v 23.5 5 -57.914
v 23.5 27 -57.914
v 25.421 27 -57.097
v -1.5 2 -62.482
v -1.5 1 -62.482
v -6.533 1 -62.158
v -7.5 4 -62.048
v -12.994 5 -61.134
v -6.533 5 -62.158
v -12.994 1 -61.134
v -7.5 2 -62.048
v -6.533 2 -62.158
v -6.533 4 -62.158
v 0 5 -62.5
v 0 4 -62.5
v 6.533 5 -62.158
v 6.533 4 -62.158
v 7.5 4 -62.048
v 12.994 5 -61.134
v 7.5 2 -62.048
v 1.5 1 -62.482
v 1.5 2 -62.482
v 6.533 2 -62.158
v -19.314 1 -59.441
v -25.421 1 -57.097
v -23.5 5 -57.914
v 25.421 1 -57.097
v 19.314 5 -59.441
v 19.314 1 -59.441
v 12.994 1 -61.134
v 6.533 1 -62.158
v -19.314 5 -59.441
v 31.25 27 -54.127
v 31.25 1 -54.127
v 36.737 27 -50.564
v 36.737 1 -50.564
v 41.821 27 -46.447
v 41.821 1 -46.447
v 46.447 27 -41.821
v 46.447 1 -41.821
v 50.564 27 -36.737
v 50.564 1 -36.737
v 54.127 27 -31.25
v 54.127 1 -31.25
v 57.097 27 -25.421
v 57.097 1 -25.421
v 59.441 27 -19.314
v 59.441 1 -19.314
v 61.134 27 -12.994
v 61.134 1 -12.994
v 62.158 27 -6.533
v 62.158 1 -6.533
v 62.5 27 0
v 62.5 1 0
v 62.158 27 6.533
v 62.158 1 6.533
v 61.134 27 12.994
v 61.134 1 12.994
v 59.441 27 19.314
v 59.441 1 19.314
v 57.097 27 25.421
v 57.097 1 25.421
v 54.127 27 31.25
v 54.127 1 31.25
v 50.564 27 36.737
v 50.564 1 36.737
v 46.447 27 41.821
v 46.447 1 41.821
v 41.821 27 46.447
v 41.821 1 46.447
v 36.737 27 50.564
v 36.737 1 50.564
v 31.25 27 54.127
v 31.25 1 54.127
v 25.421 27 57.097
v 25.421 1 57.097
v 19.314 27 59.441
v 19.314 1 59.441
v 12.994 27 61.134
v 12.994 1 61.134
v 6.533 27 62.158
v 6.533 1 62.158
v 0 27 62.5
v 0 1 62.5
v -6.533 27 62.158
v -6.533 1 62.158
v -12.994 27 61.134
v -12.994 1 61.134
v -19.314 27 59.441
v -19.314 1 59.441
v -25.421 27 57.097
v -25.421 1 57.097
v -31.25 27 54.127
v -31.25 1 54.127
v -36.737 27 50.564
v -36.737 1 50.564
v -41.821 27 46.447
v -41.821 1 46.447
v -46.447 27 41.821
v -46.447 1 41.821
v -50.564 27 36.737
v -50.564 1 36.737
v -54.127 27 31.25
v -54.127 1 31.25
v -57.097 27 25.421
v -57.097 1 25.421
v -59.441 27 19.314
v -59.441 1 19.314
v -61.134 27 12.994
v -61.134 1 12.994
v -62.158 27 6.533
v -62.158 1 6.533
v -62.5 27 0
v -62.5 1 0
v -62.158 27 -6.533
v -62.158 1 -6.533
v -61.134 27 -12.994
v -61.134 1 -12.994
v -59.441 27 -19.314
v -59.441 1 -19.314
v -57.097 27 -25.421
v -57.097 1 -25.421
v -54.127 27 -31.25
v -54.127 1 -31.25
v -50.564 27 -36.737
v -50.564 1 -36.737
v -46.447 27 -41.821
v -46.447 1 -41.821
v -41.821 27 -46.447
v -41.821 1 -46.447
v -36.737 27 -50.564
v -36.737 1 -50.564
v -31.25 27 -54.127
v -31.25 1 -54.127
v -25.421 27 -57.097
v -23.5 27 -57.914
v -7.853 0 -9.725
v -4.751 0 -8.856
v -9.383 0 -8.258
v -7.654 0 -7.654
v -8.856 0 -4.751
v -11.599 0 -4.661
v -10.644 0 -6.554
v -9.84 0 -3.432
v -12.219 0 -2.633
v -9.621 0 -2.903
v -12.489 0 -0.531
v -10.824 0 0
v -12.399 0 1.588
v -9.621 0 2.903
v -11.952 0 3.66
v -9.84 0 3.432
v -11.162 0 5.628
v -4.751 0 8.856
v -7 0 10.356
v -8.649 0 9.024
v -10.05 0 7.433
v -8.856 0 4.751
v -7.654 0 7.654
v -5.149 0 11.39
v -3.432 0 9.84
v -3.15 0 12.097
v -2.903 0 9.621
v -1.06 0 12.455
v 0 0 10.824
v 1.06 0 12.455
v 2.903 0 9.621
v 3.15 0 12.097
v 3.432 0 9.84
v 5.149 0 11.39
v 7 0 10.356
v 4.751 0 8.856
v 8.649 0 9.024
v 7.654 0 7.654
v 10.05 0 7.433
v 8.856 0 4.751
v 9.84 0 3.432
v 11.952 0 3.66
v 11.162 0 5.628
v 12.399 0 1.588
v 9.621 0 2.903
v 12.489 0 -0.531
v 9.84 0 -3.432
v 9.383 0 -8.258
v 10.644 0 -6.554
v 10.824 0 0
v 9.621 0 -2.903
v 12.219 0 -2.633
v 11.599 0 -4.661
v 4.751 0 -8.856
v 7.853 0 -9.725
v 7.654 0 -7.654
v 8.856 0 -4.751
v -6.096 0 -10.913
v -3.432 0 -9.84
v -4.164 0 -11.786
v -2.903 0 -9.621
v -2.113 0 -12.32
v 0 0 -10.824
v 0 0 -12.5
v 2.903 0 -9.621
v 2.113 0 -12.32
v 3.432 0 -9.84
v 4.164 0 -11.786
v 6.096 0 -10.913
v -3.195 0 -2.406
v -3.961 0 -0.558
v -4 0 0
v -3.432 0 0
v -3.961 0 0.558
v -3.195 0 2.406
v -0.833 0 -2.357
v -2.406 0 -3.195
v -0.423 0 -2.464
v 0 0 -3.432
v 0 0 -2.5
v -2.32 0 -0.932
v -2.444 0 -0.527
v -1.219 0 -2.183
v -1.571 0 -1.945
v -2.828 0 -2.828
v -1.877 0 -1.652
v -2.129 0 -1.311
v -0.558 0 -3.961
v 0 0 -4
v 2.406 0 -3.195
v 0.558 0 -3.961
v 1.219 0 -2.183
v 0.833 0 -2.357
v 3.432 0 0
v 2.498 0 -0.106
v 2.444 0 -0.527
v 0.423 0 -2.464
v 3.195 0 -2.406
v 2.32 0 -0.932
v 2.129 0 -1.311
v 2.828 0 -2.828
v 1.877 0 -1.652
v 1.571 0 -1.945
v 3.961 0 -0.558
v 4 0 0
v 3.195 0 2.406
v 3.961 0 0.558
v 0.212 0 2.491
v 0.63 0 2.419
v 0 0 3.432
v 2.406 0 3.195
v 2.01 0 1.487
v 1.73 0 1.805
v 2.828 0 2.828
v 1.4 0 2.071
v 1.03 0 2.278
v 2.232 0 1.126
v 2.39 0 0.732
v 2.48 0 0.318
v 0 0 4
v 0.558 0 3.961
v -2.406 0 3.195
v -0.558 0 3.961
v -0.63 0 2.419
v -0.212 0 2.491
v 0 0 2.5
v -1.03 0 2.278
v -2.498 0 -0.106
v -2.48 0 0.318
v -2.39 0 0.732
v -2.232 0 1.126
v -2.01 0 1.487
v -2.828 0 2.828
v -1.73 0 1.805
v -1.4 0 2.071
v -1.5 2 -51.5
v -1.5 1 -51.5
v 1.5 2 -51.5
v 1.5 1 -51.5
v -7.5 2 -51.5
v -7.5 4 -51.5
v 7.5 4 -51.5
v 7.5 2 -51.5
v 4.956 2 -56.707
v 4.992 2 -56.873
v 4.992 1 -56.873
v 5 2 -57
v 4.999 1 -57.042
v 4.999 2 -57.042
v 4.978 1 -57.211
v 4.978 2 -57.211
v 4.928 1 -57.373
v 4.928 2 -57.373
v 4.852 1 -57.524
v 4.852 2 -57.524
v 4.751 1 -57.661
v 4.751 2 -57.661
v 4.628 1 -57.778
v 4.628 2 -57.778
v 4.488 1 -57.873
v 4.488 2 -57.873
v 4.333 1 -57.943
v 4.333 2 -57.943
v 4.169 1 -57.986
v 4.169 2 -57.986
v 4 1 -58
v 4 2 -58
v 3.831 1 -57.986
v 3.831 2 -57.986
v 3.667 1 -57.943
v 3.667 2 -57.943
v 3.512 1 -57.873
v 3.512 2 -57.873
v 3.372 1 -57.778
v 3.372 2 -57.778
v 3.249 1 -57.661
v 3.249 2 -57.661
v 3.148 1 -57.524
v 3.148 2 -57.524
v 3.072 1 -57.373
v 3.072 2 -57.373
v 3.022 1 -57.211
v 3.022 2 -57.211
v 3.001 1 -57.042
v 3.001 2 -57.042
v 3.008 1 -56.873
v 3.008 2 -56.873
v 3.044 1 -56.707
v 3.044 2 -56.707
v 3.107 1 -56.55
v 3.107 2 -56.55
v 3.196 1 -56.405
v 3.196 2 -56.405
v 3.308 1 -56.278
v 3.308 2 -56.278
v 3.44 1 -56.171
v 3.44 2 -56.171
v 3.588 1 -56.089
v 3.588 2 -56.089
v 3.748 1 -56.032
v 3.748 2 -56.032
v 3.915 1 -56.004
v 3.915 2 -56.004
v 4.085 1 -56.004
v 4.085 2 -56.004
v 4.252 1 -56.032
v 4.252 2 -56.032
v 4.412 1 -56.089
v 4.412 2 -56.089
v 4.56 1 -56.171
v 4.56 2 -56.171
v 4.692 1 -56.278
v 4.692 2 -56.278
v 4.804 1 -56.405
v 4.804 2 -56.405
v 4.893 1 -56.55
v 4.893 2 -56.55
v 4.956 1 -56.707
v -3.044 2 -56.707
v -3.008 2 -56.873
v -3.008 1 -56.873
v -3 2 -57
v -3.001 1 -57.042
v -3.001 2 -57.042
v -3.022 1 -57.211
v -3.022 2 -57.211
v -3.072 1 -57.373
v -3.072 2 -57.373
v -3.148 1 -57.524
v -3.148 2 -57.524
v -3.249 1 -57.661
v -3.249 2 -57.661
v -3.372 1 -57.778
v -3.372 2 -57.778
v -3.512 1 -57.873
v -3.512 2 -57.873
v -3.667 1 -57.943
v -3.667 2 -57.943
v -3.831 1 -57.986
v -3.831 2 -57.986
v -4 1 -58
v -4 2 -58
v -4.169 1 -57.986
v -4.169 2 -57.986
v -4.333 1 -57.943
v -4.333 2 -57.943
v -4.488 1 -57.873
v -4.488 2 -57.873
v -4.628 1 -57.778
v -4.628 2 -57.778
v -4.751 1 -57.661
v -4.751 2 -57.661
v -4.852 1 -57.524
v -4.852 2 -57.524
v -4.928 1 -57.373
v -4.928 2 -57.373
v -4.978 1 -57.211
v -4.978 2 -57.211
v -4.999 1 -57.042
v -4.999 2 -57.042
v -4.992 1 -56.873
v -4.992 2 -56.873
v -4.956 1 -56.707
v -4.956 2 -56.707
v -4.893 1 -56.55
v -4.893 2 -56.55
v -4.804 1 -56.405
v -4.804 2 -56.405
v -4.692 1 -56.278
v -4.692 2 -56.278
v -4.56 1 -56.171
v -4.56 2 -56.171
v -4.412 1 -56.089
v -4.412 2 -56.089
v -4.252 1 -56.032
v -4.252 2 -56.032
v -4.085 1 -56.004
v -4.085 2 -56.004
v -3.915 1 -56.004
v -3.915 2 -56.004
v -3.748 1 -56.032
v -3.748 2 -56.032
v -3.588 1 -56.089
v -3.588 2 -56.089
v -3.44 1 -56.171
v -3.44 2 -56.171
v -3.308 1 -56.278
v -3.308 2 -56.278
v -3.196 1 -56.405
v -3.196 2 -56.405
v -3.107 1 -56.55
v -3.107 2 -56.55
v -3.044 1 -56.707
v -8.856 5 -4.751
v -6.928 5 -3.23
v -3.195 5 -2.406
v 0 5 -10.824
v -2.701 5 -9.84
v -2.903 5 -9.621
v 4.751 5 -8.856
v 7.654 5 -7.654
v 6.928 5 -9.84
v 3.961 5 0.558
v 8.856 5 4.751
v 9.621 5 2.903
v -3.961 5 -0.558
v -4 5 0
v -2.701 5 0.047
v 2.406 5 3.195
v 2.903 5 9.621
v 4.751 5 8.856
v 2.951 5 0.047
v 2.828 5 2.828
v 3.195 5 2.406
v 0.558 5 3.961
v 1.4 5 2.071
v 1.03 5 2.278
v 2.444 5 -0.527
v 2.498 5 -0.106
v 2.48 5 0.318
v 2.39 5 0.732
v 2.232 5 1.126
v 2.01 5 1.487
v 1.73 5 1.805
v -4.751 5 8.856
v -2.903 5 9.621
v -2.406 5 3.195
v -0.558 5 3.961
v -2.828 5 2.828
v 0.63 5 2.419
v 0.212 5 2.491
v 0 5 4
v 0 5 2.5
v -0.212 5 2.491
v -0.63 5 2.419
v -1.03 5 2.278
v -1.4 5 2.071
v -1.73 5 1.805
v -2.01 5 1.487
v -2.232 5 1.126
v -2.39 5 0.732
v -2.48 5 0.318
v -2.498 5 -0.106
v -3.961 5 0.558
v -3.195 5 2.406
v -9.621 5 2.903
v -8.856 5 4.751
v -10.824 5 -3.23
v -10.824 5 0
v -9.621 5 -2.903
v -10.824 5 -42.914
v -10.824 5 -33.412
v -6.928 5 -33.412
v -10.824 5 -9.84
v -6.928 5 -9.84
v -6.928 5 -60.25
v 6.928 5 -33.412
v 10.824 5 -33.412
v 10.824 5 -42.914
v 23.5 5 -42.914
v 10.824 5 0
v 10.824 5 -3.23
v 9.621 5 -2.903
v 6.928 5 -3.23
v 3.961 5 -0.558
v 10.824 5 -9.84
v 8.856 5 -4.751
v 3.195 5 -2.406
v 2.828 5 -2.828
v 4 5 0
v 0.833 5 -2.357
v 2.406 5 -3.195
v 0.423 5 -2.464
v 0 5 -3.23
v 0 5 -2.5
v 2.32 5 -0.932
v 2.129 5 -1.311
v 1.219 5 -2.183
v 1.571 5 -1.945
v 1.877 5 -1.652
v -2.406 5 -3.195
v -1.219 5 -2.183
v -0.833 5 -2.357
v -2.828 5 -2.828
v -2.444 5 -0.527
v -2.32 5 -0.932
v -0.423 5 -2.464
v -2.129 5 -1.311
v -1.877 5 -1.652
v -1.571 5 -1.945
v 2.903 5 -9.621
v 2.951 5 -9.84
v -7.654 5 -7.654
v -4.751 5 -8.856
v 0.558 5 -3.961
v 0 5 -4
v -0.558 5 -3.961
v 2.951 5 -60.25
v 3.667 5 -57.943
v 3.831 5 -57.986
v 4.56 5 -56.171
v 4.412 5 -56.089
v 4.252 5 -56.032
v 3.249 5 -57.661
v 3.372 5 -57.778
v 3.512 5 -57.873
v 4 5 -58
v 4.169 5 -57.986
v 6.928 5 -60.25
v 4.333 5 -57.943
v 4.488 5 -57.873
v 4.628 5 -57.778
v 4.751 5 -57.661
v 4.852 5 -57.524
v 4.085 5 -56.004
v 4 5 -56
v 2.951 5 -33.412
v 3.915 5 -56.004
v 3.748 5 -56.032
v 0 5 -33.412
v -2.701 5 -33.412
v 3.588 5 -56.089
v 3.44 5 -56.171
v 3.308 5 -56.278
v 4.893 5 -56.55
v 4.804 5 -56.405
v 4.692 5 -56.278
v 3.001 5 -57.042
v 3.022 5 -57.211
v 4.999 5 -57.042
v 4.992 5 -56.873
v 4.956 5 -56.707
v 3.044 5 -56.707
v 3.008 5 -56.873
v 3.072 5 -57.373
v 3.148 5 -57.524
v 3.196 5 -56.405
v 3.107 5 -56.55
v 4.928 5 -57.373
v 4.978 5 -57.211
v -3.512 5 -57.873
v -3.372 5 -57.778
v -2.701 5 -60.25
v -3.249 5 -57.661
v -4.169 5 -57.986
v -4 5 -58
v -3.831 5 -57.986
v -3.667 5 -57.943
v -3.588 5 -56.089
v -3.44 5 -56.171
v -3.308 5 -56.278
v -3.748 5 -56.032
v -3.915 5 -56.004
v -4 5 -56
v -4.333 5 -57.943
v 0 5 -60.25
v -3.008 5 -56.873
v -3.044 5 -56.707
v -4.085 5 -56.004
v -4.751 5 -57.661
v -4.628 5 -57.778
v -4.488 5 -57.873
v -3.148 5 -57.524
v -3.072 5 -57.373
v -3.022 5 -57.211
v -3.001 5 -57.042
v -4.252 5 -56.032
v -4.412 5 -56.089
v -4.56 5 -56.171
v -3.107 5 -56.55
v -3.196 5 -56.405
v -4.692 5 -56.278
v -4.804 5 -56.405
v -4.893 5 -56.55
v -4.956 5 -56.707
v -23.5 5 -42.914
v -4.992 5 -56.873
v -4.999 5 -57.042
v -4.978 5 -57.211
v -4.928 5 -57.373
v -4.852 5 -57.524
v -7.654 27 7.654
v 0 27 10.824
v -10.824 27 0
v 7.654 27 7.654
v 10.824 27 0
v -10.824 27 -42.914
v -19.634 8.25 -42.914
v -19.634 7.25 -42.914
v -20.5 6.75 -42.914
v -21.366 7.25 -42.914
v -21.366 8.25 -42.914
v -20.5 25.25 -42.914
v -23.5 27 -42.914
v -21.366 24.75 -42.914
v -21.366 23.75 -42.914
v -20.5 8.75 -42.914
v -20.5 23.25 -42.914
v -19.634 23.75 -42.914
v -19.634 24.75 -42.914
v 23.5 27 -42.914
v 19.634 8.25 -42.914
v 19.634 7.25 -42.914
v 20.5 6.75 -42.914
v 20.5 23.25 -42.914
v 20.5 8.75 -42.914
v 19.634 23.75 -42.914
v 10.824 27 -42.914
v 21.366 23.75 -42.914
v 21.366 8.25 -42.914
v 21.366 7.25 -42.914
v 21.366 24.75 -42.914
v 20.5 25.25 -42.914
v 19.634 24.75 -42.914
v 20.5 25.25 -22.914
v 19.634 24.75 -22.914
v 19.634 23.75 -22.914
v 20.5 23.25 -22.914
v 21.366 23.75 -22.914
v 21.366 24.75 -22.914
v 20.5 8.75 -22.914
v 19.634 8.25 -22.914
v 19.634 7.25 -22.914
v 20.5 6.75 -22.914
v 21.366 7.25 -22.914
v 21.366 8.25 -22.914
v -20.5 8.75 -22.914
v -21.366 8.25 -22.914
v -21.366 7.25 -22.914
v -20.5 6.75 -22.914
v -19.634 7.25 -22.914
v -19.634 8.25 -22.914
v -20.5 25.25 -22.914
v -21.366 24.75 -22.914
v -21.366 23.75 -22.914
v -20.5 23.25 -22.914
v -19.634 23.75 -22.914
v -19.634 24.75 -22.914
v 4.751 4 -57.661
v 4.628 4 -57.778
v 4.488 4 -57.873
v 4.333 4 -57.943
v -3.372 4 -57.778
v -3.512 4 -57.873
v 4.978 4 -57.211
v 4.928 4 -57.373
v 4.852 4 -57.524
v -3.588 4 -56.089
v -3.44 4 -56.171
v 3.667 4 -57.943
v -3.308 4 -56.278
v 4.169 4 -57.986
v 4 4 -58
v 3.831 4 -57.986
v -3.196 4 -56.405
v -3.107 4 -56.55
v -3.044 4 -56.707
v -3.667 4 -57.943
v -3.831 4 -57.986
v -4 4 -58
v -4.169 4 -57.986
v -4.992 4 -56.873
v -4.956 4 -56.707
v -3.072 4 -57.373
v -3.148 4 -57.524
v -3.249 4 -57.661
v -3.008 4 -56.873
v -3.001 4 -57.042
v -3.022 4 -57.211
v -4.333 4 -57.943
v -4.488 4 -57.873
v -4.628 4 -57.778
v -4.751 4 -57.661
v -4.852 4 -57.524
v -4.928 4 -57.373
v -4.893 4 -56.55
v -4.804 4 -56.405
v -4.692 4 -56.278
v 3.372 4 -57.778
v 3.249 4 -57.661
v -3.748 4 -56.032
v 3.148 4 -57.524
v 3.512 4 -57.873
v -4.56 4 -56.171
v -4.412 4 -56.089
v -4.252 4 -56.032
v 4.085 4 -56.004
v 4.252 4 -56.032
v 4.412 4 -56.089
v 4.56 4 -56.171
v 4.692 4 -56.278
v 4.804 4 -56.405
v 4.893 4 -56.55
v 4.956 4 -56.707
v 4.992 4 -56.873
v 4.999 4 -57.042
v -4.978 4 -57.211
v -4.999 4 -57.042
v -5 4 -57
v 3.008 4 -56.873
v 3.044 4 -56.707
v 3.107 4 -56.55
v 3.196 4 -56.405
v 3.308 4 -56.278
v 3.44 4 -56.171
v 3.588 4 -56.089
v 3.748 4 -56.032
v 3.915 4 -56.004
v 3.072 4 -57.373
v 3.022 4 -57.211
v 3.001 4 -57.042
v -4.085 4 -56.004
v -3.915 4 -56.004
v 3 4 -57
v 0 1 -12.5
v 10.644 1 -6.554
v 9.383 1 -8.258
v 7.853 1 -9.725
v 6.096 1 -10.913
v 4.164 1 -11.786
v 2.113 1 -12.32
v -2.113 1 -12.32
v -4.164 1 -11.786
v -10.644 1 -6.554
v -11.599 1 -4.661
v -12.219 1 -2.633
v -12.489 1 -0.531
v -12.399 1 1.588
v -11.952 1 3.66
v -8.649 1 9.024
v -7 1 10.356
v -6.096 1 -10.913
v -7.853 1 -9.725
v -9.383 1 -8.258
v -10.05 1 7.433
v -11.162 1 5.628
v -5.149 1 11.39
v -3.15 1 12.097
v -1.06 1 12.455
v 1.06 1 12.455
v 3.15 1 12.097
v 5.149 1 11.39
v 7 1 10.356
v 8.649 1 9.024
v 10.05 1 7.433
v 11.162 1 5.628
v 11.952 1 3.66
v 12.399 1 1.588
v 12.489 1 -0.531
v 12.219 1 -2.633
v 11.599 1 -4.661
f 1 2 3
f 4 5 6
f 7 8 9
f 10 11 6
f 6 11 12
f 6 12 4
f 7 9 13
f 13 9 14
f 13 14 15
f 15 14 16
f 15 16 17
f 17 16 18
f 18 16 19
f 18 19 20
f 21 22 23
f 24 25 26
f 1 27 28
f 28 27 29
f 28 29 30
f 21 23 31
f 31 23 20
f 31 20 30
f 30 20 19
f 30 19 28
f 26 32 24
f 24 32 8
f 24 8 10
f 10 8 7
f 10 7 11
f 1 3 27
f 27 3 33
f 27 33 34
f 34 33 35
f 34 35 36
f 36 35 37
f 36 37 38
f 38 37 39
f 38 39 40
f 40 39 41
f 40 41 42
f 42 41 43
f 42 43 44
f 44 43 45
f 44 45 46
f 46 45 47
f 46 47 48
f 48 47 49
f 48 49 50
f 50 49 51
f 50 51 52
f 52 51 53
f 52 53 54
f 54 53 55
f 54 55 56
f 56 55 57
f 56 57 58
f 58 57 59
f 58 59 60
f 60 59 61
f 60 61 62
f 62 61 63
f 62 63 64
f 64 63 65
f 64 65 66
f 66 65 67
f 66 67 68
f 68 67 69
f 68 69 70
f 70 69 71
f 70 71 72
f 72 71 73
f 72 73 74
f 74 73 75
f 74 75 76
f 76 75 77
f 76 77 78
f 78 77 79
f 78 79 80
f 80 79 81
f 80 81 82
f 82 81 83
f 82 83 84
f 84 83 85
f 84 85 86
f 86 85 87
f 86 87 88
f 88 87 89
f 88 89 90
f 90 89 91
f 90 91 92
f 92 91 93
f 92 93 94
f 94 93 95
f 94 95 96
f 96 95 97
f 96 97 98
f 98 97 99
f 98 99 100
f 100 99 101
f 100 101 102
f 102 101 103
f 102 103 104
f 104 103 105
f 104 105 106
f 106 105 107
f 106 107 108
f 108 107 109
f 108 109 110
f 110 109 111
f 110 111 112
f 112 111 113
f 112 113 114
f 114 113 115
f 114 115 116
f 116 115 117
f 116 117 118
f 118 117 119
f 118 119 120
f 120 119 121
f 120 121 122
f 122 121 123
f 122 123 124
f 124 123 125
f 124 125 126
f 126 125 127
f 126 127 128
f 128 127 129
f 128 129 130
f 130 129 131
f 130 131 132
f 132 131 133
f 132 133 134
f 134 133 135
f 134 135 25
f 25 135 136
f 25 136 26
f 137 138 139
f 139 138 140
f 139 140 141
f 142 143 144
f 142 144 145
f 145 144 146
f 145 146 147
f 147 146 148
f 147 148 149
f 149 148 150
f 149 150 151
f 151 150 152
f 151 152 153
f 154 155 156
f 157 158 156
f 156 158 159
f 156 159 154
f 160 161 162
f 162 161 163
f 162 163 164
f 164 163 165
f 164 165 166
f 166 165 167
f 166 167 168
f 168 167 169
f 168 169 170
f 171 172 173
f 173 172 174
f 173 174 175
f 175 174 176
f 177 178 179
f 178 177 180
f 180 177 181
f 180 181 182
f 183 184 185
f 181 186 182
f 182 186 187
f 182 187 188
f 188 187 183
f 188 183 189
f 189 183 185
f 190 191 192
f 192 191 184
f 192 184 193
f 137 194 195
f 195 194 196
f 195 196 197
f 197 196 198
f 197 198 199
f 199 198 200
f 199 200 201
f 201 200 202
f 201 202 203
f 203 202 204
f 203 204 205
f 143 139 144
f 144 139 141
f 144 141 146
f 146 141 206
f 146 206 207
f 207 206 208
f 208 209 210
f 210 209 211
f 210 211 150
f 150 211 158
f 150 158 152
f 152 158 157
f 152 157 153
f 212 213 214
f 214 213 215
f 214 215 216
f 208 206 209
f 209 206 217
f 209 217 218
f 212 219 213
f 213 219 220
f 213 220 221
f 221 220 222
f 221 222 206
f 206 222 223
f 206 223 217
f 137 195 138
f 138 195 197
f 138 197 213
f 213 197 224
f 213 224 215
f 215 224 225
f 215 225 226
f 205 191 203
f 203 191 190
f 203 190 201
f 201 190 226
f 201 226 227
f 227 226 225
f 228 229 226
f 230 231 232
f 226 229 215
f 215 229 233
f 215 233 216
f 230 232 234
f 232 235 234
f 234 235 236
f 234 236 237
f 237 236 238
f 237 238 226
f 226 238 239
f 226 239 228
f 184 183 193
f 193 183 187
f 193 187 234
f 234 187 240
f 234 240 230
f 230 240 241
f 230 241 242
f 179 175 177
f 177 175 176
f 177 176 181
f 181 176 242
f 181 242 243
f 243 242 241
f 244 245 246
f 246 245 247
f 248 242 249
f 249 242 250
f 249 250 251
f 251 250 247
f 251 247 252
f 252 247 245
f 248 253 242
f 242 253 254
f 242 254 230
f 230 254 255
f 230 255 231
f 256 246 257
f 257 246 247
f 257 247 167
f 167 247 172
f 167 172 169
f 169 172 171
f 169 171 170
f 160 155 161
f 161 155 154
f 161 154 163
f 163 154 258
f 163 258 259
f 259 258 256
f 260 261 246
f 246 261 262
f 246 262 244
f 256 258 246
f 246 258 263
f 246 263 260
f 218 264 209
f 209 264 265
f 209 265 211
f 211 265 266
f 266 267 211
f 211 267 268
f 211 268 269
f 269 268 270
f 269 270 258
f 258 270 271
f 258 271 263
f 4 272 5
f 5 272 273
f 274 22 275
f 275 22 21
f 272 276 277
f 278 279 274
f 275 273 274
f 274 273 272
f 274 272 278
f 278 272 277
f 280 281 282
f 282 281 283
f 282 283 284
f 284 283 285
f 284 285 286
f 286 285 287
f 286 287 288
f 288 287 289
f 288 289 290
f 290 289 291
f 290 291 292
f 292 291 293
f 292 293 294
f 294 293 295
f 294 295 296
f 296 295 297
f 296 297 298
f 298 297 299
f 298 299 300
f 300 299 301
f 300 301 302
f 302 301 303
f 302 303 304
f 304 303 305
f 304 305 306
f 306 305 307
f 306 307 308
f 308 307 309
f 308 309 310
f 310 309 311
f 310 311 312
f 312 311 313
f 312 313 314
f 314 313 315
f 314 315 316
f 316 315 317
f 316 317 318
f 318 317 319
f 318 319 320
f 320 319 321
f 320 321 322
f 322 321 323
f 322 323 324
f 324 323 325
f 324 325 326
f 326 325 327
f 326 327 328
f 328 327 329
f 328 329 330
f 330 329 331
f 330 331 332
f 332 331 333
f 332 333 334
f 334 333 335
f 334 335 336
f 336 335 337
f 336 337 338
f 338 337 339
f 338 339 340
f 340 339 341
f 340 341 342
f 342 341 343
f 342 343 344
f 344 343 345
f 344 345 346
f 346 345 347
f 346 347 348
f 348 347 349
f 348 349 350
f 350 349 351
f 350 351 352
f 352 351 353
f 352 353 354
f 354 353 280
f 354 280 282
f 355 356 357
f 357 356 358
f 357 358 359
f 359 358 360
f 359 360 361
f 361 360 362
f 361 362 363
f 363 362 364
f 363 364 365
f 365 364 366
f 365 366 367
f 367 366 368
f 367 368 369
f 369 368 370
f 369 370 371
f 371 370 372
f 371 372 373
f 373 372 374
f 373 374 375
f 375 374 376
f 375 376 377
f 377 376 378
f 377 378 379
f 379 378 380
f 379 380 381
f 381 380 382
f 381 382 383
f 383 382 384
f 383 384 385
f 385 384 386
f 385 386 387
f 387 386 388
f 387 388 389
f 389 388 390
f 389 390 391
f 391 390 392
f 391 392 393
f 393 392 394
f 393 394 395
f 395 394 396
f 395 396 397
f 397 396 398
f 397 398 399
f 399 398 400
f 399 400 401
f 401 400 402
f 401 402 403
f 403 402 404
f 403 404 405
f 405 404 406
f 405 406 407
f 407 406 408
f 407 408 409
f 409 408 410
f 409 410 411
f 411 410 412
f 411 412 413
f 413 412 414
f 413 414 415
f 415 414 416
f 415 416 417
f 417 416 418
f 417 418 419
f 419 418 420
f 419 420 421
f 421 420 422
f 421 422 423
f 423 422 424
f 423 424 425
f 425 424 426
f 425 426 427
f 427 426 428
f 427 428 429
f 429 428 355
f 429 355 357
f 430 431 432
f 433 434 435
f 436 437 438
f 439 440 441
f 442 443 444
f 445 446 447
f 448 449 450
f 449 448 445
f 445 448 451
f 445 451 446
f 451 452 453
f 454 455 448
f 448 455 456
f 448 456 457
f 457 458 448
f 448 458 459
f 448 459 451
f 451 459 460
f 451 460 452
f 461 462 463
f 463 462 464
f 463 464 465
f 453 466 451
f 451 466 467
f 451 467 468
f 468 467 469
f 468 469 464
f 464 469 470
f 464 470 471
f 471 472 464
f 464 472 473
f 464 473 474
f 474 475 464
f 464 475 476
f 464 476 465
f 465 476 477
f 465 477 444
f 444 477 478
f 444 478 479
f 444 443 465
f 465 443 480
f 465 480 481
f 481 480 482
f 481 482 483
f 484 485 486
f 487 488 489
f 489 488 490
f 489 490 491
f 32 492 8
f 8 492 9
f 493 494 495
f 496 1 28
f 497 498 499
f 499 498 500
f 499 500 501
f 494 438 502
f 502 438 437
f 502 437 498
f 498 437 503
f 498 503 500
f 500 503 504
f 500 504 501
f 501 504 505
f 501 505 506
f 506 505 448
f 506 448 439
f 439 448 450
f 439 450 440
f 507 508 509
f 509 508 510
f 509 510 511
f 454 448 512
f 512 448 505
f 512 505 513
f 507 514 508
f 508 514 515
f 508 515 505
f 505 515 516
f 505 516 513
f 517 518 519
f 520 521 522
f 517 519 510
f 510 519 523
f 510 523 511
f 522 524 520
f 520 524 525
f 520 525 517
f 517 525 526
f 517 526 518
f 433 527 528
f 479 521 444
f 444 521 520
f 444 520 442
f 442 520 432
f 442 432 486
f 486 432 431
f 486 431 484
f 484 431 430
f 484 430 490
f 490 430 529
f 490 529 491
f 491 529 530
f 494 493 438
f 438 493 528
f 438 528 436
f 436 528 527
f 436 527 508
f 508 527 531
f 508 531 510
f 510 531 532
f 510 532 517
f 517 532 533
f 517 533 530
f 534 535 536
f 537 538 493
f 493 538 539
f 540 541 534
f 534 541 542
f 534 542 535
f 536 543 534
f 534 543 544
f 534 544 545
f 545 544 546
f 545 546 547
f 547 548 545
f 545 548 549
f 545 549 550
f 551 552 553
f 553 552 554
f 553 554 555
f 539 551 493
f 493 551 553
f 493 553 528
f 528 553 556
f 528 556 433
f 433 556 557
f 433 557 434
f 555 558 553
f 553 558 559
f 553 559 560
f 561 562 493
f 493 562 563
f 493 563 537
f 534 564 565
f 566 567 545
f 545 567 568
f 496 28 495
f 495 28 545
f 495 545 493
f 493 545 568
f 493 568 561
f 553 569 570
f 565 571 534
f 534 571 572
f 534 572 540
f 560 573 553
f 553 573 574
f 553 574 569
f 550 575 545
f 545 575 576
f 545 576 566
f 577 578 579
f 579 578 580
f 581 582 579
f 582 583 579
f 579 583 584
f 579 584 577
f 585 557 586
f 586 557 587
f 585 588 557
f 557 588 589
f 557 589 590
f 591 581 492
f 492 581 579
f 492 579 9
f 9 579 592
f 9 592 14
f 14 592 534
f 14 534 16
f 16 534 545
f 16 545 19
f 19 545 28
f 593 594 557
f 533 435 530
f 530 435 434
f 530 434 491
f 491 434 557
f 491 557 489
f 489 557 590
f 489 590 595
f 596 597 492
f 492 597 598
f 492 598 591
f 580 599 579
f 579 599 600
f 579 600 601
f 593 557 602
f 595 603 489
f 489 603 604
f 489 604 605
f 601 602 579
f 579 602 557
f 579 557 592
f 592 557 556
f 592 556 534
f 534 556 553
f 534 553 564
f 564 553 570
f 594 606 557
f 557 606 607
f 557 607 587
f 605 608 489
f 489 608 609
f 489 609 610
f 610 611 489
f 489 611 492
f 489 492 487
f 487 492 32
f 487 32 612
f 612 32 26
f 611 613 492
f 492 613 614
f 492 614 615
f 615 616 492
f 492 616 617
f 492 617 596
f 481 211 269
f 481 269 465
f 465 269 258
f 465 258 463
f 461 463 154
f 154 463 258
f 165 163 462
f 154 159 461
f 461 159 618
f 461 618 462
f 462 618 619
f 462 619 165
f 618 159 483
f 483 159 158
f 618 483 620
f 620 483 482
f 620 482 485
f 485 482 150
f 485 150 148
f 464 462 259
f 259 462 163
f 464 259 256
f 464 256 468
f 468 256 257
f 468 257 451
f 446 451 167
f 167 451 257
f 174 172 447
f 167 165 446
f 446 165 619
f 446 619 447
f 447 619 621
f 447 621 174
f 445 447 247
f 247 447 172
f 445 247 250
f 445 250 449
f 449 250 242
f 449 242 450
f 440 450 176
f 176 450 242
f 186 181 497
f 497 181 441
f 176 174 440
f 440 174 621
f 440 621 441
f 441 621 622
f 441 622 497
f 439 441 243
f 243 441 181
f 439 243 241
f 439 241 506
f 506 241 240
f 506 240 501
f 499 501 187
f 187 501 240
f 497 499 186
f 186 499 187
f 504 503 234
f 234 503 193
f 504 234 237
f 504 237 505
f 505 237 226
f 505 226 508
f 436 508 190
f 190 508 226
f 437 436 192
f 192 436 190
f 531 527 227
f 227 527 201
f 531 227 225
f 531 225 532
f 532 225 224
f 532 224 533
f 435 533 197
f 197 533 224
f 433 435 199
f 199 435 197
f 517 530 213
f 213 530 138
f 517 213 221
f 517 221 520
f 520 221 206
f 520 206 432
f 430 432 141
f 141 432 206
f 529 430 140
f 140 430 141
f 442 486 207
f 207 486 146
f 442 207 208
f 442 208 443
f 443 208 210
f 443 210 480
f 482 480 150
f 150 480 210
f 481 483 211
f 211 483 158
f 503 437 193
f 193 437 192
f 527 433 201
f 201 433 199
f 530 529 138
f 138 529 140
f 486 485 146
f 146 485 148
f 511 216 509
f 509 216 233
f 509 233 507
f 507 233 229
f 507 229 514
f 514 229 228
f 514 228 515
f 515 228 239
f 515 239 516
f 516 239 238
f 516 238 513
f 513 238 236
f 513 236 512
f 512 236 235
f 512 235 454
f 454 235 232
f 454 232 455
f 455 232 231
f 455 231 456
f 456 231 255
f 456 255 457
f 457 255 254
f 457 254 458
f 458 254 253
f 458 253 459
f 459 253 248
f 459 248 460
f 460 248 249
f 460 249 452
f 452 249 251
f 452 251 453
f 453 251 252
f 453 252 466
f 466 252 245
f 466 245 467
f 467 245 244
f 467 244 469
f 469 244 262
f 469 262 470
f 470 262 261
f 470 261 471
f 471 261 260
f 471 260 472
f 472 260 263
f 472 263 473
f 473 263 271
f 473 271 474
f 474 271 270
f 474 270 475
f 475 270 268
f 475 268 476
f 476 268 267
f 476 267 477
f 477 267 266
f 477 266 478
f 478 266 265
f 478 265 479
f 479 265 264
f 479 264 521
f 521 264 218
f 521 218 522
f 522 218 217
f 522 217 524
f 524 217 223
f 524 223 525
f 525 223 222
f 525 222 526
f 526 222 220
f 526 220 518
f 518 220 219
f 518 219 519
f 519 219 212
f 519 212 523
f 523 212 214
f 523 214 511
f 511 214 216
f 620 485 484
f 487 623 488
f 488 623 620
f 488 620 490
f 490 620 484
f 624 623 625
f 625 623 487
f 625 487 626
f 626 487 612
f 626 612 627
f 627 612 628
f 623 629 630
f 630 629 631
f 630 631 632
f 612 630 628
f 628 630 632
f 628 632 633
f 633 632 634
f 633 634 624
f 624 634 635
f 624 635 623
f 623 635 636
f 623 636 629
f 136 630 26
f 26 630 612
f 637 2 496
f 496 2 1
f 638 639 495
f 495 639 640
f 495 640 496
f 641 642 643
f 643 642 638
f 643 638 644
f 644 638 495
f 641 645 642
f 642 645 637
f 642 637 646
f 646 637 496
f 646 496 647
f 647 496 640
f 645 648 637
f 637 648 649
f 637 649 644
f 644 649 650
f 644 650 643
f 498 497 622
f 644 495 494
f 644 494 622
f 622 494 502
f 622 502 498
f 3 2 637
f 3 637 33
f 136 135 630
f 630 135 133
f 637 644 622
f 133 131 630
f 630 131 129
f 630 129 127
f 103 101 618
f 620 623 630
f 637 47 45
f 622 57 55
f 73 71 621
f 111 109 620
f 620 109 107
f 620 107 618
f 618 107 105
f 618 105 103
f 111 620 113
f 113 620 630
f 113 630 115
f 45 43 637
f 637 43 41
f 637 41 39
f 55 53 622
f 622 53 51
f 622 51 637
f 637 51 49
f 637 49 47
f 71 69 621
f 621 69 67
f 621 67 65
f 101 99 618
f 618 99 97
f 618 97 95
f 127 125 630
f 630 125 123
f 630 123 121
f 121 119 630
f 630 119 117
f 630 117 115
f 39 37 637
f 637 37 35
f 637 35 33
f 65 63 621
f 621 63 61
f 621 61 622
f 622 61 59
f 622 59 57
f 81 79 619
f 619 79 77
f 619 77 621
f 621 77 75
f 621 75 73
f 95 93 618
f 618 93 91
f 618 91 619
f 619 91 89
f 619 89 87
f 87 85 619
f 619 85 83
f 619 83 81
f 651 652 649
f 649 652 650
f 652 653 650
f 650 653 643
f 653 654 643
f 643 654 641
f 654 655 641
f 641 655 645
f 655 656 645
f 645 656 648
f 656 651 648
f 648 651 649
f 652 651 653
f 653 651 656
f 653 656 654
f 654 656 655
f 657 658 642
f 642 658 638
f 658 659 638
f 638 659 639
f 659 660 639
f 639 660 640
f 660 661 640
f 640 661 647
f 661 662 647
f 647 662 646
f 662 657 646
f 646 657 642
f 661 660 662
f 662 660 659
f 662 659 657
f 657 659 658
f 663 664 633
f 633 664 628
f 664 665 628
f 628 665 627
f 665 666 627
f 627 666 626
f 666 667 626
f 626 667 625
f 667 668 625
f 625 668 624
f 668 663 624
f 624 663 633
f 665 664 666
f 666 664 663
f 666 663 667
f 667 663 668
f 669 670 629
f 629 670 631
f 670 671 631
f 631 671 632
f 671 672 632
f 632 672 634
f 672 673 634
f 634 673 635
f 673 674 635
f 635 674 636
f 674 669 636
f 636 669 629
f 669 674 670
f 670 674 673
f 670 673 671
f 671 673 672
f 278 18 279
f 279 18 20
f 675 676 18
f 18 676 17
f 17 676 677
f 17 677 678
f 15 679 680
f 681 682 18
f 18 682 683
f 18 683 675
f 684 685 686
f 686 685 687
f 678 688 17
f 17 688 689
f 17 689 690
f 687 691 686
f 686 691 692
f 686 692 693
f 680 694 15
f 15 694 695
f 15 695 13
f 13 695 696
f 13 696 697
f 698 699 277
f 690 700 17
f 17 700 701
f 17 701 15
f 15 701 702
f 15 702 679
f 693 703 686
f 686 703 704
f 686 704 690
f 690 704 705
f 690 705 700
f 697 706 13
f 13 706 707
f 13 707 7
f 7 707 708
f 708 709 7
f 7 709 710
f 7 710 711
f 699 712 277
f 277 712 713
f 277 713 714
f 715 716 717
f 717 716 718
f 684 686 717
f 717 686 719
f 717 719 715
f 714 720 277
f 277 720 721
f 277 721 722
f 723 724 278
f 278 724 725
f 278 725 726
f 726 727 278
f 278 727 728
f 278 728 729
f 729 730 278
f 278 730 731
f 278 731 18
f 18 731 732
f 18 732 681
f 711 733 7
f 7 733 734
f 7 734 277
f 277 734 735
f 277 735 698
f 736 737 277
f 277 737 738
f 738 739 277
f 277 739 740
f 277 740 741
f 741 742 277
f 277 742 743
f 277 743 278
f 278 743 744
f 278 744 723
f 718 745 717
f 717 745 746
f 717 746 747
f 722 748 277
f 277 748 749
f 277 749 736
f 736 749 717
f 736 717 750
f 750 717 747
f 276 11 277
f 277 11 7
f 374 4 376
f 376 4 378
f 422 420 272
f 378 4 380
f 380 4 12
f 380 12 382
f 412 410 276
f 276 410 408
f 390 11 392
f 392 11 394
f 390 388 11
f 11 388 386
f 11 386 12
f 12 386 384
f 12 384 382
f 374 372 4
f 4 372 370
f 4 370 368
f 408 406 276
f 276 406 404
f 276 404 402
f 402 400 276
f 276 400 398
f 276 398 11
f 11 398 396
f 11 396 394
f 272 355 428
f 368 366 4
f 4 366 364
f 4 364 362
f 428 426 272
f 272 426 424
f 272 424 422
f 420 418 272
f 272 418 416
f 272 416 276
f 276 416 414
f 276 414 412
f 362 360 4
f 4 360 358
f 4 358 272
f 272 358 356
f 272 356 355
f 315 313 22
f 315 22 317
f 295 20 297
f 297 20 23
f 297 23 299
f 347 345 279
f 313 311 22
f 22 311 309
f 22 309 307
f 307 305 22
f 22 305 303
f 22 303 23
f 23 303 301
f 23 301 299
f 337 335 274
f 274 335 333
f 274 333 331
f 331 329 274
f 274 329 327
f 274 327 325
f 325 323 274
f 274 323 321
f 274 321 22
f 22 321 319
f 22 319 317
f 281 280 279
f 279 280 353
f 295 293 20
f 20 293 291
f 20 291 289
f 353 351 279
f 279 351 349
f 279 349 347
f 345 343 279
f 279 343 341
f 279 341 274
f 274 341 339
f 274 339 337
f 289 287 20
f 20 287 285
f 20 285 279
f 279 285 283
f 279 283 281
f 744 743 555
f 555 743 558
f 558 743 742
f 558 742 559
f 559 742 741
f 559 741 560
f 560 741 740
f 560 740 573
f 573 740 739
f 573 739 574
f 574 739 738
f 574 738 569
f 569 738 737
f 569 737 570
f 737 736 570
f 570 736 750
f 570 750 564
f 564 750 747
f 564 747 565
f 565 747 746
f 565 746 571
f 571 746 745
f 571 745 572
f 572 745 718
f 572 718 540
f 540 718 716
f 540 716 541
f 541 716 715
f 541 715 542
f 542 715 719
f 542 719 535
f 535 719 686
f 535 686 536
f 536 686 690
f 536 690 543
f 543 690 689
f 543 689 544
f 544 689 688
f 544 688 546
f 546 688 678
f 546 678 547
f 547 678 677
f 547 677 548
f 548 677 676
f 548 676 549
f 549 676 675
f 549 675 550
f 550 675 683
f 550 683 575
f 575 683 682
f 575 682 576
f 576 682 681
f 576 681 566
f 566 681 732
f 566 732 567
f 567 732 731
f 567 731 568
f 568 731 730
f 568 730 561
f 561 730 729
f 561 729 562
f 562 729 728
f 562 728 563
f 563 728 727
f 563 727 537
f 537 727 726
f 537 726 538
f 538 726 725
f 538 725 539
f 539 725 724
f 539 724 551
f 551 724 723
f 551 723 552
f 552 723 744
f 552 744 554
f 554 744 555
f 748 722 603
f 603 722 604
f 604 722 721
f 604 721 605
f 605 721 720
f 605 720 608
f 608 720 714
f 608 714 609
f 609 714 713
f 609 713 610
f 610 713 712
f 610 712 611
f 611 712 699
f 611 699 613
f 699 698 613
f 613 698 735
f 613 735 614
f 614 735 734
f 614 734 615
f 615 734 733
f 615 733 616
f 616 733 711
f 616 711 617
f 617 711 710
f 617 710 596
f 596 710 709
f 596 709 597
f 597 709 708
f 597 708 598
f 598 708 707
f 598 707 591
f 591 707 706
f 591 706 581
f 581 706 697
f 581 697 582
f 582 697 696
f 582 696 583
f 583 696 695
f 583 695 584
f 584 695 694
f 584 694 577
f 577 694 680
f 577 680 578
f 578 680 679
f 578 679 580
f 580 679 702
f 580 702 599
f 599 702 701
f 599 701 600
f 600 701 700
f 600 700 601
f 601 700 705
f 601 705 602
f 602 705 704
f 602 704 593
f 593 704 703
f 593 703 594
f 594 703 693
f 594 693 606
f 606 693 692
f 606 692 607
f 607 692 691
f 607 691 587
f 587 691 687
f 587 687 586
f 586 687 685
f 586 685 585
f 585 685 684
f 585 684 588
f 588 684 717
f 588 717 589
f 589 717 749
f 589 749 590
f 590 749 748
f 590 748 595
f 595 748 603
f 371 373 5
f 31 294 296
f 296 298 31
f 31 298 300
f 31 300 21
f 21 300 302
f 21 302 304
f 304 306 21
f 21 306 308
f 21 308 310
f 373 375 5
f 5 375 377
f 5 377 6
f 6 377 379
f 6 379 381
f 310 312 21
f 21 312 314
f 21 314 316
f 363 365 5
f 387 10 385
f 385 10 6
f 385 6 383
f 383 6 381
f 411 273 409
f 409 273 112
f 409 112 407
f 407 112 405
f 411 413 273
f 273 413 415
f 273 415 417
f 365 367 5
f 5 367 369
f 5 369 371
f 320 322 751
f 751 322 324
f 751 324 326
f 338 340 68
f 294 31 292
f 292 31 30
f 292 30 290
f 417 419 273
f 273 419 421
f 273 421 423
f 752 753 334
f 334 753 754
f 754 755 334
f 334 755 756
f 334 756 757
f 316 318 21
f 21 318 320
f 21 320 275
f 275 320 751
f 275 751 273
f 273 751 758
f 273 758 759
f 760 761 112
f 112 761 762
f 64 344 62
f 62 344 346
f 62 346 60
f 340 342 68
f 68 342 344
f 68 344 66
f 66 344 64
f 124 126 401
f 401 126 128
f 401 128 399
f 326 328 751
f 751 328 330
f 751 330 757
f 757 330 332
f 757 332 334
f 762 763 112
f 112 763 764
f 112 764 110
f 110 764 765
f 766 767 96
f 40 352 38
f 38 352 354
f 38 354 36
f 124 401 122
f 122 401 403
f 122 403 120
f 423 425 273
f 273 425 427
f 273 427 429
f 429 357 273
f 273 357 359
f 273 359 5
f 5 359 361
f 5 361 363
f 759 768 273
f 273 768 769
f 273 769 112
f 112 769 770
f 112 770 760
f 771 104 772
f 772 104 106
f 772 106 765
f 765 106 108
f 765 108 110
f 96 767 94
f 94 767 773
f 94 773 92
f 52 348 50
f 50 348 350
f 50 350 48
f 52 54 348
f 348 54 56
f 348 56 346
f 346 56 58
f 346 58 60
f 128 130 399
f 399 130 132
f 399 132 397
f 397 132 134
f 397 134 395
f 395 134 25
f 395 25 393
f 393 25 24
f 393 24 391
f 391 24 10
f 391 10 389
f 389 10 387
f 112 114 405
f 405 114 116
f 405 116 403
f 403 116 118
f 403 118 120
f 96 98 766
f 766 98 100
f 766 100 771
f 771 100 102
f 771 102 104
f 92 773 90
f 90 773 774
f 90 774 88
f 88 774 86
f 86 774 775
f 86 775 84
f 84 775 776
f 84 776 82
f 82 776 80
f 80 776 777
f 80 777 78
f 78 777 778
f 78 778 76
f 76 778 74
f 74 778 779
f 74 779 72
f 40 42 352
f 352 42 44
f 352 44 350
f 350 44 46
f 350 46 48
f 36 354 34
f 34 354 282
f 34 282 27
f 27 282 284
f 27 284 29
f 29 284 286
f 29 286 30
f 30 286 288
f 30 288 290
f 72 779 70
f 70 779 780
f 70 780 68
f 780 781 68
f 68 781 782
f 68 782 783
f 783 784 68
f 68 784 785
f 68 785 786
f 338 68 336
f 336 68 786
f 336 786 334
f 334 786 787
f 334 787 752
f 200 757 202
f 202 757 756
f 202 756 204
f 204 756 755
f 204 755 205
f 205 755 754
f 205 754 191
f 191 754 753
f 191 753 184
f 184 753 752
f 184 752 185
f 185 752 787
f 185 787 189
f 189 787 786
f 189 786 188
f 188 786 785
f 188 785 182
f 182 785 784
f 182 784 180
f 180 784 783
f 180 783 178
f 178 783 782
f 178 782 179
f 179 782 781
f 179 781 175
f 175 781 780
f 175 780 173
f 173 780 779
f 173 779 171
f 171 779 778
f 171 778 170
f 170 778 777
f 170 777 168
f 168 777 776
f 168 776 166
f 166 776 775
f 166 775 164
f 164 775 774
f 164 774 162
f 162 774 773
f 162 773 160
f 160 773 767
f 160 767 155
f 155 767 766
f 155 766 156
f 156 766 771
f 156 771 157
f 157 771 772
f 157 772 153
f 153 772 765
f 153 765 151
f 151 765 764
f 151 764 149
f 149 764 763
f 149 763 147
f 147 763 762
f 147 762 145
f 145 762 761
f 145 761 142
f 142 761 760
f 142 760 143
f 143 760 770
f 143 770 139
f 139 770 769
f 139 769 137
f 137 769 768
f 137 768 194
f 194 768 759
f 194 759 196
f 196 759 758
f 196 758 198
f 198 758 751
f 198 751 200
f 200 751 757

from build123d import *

# Parameters (mm, degrees)
SKETCH1_R           = 62.5
SKETCH1_R_2         = 4
SKETCH1_R_3         = 2.5
BOSS_EXTRUDE1_DEPTH = 5
BOSS_EXTRUDE3_DEPTH = 22
CUT_EXTRUDE1_DEPTH  = 20
CUT_EXTRUDE2_DEPTH  = 11
CUT_EXTRUDE3_START  = -5
SKETCH8_R           = 1
CUT_EXTRUDE3_DEPTH  = 5
SKETCH11_R          = 62.5
SKETCH11_R_2        = 12.5
CUT_EXTRUDE6_DEPTH  = 1


with BuildPart() as part:
    # Sketch1 → Boss-Extrude1 (new body)
    # profile 1 of 10: a face of its own
    with BuildSketch(Plane(origin=(0, 0, 0), x_dir=(1, 0, 0), z_dir=(0, 1, 0))):
        with Locations(Location((0, 0, 0), (0, 0, 270))):
            Circle(SKETCH1_R)
        Polygon((-10.823922003, 0), (-7.653668647, 7.653668647), (0, 10.823922003), (7.653668647, 7.653668647), (10.823922003, 0), (7.653668647, -7.653668647), (0, -10.823922003), (-7.653668647, -7.653668647), align=None, mode=Mode.SUBTRACT)
    # profile 2 of 10: a face of its own
    with BuildSketch(Plane(origin=(0, 0, 0), x_dir=(1, 0, 0), z_dir=(0, 1, 0))):
        Circle(SKETCH1_R_2)
        with Locations(Location((0, 0, 0), (0, 0, 270))):
            Circle(SKETCH1_R_3, mode=Mode.SUBTRACT)
    # profile 3 of 10: a face of its own
    with BuildSketch(Plane(origin=(0, 0, 0), x_dir=(1, 0, 0), z_dir=(0, 1, 0))):
        with BuildLine():
            Line((8.856111893, -4.750713856), (9.621478757, -2.902954791))
            Line((9.621478757, -2.902954791), (3.960853476, -0.558247028))
            ThreePointArc((3.960853476, -0.558247028), (3.69551813, -1.530733729), (3.195486611, -2.406006093))
            Line((3.195486611, -2.406006093), (8.856111893, -4.750713856))
        make_face()
    # profile 4 of 10: a face of its own
    with BuildSketch(Plane(origin=(0, 0, 0), x_dir=(1, 0, 0), z_dir=(0, 1, 0))):
        with BuildLine():
            Line((9.621478757, 2.902954791), (8.856111893, 4.750713856))
            Line((8.856111893, 4.750713856), (3.195486611, 2.406006093))
            ThreePointArc((3.195486611, 2.406006093), (3.69551813, 1.530733729), (3.960853476, 0.558247028))
            Line((3.960853476, 0.558247028), (9.621478757, 2.902954791))
        make_face()
    # profile 5 of 10: a face of its own
    with BuildSketch(Plane(origin=(0, 0, 0), x_dir=(1, 0, 0), z_dir=(0, 1, 0))):
        with BuildLine():
            Line((4.750713856, 8.856111893), (2.902954791, 9.621478757))
            Line((2.902954791, 9.621478757), (0.558247028, 3.960853476))
            ThreePointArc((0.558247028, 3.960853476), (1.530733729, 3.69551813), (2.406006093, 3.195486611))
            Line((2.406006093, 3.195486611), (4.750713856, 8.856111893))
        make_face()
    # profile 6 of 10: a face of its own
    with BuildSketch(Plane(origin=(0, 0, 0), x_dir=(1, 0, 0), z_dir=(0, 1, 0))):
        with BuildLine():
            Line((-0.558247028, 3.960853476), (-2.902954791, 9.621478757))
            Line((-2.902954791, 9.621478757), (-4.750713856, 8.856111893))
            Line((-4.750713856, 8.856111893), (-2.406006093, 3.195486611))
            ThreePointArc((-2.406006093, 3.195486611), (-1.530733729, 3.69551813), (-0.558247028, 3.960853476))
        make_face()
    # profile 7 of 10: a face of its own
    with BuildSketch(Plane(origin=(0, 0, 0), x_dir=(1, 0, 0), z_dir=(0, 1, 0))):
        with BuildLine():
            Line((-3.195486611, 2.406006093), (-8.856111893, 4.750713856))
            Line((-8.856111893, 4.750713856), (-9.621478757, 2.902954791))
            Line((-9.621478757, 2.902954791), (-3.960853476, 0.558247028))
            ThreePointArc((-3.960853476, 0.558247028), (-3.69551813, 1.530733729), (-3.195486611, 2.406006093))
        make_face()
    # profile 8 of 10: a face of its own
    with BuildSketch(Plane(origin=(0, 0, 0), x_dir=(1, 0, 0), z_dir=(0, 1, 0))):
        with BuildLine():
            ThreePointArc((-3.195486611, -2.406006093), (-3.69551813, -1.530733729), (-3.960853476, -0.558247028))
            Line((-3.960853476, -0.558247028), (-9.621478757, -2.902954791))
            Line((-9.621478757, -2.902954791), (-8.856111893, -4.750713856))
            Line((-8.856111893, -4.750713856), (-3.195486611, -2.406006093))
        make_face()
    # profile 9 of 10: a face of its own
    with BuildSketch(Plane(origin=(0, 0, 0), x_dir=(1, 0, 0), z_dir=(0, 1, 0))):
        with BuildLine():
            ThreePointArc((-0.558247028, -3.960853476), (-1.530733729, -3.69551813), (-2.406006093, -3.195486611))
            Line((-2.406006093, -3.195486611), (-4.750713856, -8.856111893))
            Line((-4.750713856, -8.856111893), (-2.902954791, -9.621478757))
            Line((-2.902954791, -9.621478757), (-0.558247028, -3.960853476))
        make_face()
    # profile 10 of 10: a face of its own
    with BuildSketch(Plane(origin=(0, 0, 0), x_dir=(1, 0, 0), z_dir=(0, 1, 0))):
        with BuildLine():
            Line((4.750713856, -8.856111893), (2.406006093, -3.195486611))
            ThreePointArc((2.406006093, -3.195486611), (1.530733729, -3.69551813), (0.558247028, -3.960853476))
            Line((0.558247028, -3.960853476), (2.902954791, -9.621478757))
            Line((2.902954791, -9.621478757), (4.750713856, -8.856111893))
        make_face()
    extrude(amount=BOSS_EXTRUDE1_DEPTH)

    # Sketch3 → Boss-Extrude3 (add)
    with BuildSketch(Plane(origin=(0, 5, 0), x_dir=(1, 0, 0), z_dir=(0, 1, 0))):
        with BuildLine():
            Line((-10.823922003, 0), (-10.823922003, 42.913728942))
            Line((-10.823922003, 42.913728942), (-23.5, 42.913728942))
            Line((-23.5, 42.913728942), (-23.5, 57.913728942))
            ThreePointArc((-23.5, 57.913728942), (0, -62.5), (23.5, 57.913728942))
            Line((23.5, 57.913728942), (23.5, 42.913728942))
            Line((23.5, 42.913728942), (10.823922003, 42.913728942))
            Line((10.823922003, 42.913728942), (10.823922003, 0))
            Line((10.823922003, 0), (7.653668647, -7.653668647))
            Line((7.653668647, -7.653668647), (0, -10.823922003))
            Line((0, -10.823922003), (-7.653668647, -7.653668647))
            Line((-7.653668647, -7.653668647), (-10.823922003, 0))
        make_face()
    extrude(amount=BOSS_EXTRUDE3_DEPTH)

    # Sketch4 → Cut-Extrude1 (cut)
    with BuildSketch(Plane(origin=(0, 0, -42.913728942), x_dir=(-1, 0, 0), z_dir=(0, 0, -1))):
        Polygon((-20.5, 25.25), (-21.366025404, 24.75), (-21.366025404, 23.75), (-20.5, 23.25), (-19.633974596, 23.75), (-19.633974596, 24.75), align=None)
        Polygon((-20.5, 8.75), (-21.366025404, 8.25), (-21.366025404, 7.25), (-20.5, 6.75), (-19.633974596, 7.25), (-19.633974596, 8.25), align=None)
        Polygon((20.5, 8.75), (19.633974596, 8.25), (19.633974596, 7.25), (20.5, 6.75), (21.366025404, 7.25), (21.366025404, 8.25), align=None)
        Polygon((20.5, 25.25), (19.633974596, 24.75), (19.633974596, 23.75), (20.5, 23.25), (21.366025404, 23.75), (21.366025404, 24.75), align=None)
    extrude(amount=-CUT_EXTRUDE1_DEPTH, mode=Mode.SUBTRACT)

    # Sketch7 → Cut-Extrude2 (cut)
    with BuildSketch(Plane(origin=(0, 0, -62.5), x_dir=(-1, 0, 0), z_dir=(0, 0, -1))):
        Polygon((-7.5, 4), (7.5, 4), (7.5, 2), (1.5, 2), (1.5, 0), (-1.5, 0), (-1.5, 2), (-7.5, 2), align=None)
    extrude(amount=-CUT_EXTRUDE2_DEPTH, mode=Mode.SUBTRACT)

    # Sketch8 → Cut-Extrude3 (cut)
    with BuildSketch(Plane.XZ.offset(CUT_EXTRUDE3_START)):
        with Locations(Location((-4, -57, 0), (0, 0, 270))):
            Circle(SKETCH8_R)
        with Locations(Location((4, -57, 0), (0, 0, 270))):
            Circle(SKETCH8_R)
    extrude(amount=CUT_EXTRUDE3_DEPTH, mode=Mode.SUBTRACT)

    # Sketch11 → Cut-Extrude6 (cut)
    with BuildSketch(Plane.XZ):
        with Locations(Location((0, 0, 0), (0, 0, 271.375230752))):
            Circle(SKETCH11_R)
        with Locations(Location((0, 0, 0), (0, 0, 270))):
            Circle(SKETCH11_R_2, mode=Mode.SUBTRACT)
    extrude(amount=-CUT_EXTRUDE6_DEPTH, mode=Mode.SUBTRACT)


solid = part.part
